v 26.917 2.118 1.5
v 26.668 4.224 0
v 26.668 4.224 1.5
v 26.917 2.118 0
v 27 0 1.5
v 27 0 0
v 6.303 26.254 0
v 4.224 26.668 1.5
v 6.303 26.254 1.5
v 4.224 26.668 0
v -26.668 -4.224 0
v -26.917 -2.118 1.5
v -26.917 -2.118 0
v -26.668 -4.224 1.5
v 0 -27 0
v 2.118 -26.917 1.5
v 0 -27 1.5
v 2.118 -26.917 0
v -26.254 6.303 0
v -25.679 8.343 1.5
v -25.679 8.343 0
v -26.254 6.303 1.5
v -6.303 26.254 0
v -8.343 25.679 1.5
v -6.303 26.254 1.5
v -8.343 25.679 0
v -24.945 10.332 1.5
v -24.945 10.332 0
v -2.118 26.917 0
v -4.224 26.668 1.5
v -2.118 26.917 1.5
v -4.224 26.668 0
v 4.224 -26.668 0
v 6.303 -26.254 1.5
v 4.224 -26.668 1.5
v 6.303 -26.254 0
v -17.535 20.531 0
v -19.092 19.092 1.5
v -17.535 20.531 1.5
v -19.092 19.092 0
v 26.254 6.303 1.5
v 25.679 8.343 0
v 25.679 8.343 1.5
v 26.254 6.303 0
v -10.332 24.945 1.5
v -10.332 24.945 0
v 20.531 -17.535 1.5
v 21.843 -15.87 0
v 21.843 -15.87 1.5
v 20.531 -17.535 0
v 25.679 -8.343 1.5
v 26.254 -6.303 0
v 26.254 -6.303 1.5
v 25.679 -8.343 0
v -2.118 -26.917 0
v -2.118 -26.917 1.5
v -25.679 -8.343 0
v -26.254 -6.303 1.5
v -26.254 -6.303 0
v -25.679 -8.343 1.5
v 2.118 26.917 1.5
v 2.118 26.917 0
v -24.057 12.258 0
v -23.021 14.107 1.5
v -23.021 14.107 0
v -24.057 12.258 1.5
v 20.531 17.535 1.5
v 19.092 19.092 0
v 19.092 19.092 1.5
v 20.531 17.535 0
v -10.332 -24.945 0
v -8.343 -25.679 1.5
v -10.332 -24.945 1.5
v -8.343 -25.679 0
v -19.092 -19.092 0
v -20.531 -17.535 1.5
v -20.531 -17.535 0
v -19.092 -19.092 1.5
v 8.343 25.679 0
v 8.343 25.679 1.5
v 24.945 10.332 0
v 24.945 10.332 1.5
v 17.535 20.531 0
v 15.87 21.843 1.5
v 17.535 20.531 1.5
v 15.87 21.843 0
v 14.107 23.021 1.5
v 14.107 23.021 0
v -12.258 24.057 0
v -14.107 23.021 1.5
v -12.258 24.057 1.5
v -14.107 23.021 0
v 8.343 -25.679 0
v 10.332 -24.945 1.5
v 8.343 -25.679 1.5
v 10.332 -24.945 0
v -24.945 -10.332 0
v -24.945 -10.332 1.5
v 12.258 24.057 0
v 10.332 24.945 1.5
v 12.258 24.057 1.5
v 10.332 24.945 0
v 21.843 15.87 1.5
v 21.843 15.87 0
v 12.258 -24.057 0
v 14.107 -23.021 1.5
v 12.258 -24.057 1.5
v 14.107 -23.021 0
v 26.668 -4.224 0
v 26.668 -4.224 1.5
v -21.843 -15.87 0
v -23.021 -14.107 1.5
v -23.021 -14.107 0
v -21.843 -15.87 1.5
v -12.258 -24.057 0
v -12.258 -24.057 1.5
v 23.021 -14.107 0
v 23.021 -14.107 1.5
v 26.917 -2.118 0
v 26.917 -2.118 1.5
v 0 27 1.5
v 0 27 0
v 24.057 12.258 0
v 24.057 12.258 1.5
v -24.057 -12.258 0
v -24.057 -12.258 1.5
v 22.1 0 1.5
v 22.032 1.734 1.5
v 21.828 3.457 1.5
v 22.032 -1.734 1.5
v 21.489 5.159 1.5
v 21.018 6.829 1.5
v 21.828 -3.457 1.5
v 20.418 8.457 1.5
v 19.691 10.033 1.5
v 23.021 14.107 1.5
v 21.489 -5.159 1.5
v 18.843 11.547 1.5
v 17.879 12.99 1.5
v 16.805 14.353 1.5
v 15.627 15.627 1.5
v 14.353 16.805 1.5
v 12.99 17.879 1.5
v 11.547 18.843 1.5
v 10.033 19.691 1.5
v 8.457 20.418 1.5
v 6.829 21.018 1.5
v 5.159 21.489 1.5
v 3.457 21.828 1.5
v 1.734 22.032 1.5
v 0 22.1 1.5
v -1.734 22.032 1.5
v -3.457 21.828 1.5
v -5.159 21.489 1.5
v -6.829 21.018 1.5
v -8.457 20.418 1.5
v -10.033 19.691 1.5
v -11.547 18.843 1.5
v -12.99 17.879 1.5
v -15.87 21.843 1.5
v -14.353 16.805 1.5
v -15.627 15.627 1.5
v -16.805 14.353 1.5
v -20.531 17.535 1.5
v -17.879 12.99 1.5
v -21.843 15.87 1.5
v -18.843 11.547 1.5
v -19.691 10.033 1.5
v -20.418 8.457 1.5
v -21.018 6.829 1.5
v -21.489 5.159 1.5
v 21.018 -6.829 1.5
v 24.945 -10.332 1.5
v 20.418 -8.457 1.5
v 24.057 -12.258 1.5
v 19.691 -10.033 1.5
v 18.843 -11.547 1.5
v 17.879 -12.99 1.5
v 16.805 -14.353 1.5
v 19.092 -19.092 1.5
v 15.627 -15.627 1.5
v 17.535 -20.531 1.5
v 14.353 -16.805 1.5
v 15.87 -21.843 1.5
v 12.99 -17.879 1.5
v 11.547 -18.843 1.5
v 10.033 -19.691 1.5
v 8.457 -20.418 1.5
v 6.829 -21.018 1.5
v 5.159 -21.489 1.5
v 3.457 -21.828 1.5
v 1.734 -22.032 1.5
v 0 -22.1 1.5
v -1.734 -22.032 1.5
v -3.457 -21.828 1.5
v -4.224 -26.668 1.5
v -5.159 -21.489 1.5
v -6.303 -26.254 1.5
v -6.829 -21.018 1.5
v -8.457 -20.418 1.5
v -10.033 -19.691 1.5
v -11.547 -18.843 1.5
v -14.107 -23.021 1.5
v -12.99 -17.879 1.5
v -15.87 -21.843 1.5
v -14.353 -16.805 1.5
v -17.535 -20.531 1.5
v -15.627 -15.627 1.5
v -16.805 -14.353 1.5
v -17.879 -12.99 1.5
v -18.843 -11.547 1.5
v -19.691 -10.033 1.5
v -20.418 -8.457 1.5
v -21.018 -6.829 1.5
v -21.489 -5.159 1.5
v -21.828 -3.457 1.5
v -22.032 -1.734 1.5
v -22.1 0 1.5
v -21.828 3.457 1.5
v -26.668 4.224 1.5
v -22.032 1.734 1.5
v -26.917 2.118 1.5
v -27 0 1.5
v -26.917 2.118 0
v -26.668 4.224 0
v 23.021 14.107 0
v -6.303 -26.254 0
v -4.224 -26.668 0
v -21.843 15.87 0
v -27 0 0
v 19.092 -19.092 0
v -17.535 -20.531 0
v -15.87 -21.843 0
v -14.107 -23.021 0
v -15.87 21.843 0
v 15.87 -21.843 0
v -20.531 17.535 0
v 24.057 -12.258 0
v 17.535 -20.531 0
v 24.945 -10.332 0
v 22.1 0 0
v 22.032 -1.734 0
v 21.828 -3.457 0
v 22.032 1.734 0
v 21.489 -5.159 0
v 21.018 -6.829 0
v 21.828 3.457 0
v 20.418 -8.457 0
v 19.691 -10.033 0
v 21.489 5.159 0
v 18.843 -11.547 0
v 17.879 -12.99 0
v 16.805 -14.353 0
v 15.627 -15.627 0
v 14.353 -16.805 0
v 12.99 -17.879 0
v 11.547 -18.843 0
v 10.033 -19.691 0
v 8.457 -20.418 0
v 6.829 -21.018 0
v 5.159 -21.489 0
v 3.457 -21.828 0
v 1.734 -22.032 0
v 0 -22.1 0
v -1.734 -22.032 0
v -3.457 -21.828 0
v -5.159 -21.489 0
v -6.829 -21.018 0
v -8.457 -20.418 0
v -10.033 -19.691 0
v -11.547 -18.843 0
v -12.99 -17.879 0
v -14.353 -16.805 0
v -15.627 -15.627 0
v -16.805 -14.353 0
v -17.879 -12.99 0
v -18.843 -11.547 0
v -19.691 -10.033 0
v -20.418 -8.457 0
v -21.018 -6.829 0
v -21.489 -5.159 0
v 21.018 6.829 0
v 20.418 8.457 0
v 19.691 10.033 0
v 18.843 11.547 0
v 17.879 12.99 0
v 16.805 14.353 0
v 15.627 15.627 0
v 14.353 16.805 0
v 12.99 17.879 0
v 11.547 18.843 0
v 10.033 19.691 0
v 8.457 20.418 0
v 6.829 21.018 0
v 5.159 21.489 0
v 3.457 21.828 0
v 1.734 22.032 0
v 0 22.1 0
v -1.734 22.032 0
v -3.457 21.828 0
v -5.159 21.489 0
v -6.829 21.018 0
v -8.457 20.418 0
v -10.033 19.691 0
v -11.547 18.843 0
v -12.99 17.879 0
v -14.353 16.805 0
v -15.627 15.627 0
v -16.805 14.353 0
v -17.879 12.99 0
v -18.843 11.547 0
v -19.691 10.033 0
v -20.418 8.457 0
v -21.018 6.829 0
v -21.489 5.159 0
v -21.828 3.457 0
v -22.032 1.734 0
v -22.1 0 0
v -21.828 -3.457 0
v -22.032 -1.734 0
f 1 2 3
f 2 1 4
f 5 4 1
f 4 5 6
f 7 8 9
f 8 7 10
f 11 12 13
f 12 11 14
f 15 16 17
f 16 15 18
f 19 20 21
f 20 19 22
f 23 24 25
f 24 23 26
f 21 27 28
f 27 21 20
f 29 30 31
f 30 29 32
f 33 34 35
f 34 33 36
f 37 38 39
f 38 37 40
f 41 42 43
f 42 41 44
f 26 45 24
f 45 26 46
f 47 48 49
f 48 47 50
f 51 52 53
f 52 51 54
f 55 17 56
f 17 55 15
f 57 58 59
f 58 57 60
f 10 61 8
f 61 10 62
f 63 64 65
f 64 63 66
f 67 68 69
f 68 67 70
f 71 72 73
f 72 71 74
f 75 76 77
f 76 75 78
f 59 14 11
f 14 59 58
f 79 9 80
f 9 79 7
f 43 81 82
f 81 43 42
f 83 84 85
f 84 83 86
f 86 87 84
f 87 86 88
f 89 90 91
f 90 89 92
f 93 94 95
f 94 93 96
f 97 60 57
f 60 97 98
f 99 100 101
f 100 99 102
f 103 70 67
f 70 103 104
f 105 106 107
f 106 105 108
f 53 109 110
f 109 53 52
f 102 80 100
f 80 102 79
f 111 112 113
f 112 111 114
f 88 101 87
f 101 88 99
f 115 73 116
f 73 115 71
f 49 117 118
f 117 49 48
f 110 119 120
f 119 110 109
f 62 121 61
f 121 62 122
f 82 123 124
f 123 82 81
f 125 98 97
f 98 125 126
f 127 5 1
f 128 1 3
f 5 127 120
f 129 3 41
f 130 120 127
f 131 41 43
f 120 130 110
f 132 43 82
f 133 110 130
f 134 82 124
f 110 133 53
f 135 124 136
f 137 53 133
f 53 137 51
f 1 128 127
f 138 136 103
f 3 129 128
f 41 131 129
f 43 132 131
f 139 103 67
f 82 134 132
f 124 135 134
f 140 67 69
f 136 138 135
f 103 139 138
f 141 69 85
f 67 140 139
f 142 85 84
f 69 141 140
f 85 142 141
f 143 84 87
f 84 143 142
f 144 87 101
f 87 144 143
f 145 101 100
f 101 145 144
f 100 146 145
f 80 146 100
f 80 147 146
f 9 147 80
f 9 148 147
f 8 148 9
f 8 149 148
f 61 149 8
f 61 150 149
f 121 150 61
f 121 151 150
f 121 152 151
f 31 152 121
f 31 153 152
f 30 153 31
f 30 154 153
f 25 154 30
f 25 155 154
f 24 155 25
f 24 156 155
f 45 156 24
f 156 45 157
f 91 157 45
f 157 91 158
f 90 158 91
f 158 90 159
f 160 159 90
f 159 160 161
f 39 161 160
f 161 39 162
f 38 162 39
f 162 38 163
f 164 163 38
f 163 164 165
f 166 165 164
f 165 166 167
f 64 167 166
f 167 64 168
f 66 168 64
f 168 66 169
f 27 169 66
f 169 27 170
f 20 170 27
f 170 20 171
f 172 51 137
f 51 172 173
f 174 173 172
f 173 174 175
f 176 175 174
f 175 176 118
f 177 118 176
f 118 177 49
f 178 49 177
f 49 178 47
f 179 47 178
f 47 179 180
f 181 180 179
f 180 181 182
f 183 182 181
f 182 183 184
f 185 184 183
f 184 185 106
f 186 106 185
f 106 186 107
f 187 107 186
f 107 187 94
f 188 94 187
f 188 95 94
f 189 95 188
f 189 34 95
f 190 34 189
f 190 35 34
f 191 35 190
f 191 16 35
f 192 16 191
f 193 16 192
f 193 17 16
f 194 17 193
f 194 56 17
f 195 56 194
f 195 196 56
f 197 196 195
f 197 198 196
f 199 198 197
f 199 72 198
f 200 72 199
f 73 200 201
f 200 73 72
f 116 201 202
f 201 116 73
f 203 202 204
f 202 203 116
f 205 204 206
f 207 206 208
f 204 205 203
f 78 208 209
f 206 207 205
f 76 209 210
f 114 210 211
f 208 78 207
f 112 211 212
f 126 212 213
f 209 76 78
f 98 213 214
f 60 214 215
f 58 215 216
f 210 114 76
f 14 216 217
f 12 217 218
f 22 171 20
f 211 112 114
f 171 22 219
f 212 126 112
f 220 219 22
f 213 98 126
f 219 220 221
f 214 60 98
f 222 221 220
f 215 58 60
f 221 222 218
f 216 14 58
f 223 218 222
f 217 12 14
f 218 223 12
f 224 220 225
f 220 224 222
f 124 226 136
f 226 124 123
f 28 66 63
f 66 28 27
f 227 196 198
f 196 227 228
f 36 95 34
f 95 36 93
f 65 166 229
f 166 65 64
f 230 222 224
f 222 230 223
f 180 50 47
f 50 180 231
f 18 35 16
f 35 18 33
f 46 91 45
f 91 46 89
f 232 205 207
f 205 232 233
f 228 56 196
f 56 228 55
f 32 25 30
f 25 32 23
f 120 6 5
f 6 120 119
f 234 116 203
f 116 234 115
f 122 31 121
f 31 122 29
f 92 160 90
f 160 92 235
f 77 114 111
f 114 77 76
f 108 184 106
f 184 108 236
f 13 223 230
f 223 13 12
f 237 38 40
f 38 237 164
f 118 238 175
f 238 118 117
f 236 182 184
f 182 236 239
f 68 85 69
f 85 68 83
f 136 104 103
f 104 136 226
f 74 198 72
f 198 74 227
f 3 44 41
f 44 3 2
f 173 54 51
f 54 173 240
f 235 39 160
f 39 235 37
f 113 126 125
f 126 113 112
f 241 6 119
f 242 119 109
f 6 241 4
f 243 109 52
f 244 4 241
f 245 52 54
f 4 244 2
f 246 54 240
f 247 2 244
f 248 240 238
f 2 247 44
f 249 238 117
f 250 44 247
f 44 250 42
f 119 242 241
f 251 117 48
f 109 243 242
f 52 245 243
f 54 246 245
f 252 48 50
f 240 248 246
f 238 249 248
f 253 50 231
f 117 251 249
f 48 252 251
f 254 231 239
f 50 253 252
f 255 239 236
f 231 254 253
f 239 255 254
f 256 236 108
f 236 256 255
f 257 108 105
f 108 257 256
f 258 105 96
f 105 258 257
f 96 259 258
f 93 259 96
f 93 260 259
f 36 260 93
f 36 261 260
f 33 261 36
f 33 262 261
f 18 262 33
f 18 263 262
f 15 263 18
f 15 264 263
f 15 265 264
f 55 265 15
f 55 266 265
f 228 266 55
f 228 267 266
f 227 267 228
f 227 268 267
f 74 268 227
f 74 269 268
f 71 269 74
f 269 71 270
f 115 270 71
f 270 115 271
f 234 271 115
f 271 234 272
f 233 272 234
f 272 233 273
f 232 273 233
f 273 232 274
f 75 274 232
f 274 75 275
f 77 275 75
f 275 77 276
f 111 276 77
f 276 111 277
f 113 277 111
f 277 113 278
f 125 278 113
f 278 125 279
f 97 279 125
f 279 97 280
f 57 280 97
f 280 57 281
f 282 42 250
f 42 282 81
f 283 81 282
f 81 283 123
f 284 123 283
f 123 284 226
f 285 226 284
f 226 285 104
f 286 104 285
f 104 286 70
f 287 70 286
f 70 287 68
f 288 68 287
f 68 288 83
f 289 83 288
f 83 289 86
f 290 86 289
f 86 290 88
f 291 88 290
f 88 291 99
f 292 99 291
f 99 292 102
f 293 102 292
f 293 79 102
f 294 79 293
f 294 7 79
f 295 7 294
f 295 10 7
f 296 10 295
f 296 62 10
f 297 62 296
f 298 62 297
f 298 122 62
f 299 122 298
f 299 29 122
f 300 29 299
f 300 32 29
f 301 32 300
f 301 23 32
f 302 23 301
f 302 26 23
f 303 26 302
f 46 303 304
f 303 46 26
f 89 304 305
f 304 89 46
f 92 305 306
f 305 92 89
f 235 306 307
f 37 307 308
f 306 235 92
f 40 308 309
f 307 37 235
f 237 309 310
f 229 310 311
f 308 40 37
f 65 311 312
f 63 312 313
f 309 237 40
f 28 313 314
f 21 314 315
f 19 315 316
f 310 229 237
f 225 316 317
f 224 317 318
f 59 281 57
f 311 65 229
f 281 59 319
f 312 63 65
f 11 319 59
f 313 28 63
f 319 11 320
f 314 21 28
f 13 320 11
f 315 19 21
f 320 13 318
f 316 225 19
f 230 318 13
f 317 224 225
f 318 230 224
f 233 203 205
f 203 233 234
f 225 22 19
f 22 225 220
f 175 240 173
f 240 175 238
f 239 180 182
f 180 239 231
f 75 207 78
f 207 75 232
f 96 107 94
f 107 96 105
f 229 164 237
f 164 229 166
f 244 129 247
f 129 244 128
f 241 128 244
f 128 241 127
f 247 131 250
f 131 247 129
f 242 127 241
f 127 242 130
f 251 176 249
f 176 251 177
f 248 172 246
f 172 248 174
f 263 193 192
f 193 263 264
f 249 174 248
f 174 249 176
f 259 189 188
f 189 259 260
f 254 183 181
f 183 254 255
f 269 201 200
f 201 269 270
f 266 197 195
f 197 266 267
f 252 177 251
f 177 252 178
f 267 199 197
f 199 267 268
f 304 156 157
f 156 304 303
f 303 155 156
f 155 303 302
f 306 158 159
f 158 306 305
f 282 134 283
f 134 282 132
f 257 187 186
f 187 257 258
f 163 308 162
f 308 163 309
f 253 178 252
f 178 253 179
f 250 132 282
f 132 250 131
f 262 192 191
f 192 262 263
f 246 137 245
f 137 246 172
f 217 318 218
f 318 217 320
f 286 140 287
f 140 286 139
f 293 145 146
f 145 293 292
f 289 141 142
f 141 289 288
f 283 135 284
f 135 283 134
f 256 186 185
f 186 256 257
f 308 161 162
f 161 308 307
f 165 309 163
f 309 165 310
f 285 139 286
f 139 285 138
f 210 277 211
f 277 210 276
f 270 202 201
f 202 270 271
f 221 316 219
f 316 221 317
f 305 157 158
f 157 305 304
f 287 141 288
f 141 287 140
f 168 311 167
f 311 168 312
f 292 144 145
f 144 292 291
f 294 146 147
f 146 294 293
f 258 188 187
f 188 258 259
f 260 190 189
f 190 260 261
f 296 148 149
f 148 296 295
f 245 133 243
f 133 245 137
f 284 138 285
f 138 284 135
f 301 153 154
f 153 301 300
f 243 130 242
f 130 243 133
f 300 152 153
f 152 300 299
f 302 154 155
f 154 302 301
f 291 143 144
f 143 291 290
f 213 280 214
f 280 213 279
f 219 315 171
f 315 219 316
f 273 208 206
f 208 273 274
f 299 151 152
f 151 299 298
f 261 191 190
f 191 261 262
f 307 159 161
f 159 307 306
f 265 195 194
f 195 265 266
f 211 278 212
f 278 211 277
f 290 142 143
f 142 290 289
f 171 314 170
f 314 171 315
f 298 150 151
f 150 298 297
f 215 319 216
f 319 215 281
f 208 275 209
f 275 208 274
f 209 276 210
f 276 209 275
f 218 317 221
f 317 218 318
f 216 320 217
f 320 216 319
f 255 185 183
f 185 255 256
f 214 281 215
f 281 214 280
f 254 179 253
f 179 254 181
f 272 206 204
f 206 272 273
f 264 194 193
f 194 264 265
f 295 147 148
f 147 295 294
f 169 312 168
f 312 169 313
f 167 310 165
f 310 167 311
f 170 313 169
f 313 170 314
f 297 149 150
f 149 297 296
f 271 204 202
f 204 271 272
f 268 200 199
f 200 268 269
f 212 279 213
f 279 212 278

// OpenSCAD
thickness           = 1.5;
innerDiameter       = 44.2;
outerDiameter       = 54.0;

manifoldCorrection  = 0.01;
$fn                 = 80;

difference()
{
    cylinder(d = outerDiameter, h = thickness);
    translate( [0, 0, -manifoldCorrection] )
        cylinder(d = innerDiameter, h = thickness + manifoldCorrection * 2);
}
